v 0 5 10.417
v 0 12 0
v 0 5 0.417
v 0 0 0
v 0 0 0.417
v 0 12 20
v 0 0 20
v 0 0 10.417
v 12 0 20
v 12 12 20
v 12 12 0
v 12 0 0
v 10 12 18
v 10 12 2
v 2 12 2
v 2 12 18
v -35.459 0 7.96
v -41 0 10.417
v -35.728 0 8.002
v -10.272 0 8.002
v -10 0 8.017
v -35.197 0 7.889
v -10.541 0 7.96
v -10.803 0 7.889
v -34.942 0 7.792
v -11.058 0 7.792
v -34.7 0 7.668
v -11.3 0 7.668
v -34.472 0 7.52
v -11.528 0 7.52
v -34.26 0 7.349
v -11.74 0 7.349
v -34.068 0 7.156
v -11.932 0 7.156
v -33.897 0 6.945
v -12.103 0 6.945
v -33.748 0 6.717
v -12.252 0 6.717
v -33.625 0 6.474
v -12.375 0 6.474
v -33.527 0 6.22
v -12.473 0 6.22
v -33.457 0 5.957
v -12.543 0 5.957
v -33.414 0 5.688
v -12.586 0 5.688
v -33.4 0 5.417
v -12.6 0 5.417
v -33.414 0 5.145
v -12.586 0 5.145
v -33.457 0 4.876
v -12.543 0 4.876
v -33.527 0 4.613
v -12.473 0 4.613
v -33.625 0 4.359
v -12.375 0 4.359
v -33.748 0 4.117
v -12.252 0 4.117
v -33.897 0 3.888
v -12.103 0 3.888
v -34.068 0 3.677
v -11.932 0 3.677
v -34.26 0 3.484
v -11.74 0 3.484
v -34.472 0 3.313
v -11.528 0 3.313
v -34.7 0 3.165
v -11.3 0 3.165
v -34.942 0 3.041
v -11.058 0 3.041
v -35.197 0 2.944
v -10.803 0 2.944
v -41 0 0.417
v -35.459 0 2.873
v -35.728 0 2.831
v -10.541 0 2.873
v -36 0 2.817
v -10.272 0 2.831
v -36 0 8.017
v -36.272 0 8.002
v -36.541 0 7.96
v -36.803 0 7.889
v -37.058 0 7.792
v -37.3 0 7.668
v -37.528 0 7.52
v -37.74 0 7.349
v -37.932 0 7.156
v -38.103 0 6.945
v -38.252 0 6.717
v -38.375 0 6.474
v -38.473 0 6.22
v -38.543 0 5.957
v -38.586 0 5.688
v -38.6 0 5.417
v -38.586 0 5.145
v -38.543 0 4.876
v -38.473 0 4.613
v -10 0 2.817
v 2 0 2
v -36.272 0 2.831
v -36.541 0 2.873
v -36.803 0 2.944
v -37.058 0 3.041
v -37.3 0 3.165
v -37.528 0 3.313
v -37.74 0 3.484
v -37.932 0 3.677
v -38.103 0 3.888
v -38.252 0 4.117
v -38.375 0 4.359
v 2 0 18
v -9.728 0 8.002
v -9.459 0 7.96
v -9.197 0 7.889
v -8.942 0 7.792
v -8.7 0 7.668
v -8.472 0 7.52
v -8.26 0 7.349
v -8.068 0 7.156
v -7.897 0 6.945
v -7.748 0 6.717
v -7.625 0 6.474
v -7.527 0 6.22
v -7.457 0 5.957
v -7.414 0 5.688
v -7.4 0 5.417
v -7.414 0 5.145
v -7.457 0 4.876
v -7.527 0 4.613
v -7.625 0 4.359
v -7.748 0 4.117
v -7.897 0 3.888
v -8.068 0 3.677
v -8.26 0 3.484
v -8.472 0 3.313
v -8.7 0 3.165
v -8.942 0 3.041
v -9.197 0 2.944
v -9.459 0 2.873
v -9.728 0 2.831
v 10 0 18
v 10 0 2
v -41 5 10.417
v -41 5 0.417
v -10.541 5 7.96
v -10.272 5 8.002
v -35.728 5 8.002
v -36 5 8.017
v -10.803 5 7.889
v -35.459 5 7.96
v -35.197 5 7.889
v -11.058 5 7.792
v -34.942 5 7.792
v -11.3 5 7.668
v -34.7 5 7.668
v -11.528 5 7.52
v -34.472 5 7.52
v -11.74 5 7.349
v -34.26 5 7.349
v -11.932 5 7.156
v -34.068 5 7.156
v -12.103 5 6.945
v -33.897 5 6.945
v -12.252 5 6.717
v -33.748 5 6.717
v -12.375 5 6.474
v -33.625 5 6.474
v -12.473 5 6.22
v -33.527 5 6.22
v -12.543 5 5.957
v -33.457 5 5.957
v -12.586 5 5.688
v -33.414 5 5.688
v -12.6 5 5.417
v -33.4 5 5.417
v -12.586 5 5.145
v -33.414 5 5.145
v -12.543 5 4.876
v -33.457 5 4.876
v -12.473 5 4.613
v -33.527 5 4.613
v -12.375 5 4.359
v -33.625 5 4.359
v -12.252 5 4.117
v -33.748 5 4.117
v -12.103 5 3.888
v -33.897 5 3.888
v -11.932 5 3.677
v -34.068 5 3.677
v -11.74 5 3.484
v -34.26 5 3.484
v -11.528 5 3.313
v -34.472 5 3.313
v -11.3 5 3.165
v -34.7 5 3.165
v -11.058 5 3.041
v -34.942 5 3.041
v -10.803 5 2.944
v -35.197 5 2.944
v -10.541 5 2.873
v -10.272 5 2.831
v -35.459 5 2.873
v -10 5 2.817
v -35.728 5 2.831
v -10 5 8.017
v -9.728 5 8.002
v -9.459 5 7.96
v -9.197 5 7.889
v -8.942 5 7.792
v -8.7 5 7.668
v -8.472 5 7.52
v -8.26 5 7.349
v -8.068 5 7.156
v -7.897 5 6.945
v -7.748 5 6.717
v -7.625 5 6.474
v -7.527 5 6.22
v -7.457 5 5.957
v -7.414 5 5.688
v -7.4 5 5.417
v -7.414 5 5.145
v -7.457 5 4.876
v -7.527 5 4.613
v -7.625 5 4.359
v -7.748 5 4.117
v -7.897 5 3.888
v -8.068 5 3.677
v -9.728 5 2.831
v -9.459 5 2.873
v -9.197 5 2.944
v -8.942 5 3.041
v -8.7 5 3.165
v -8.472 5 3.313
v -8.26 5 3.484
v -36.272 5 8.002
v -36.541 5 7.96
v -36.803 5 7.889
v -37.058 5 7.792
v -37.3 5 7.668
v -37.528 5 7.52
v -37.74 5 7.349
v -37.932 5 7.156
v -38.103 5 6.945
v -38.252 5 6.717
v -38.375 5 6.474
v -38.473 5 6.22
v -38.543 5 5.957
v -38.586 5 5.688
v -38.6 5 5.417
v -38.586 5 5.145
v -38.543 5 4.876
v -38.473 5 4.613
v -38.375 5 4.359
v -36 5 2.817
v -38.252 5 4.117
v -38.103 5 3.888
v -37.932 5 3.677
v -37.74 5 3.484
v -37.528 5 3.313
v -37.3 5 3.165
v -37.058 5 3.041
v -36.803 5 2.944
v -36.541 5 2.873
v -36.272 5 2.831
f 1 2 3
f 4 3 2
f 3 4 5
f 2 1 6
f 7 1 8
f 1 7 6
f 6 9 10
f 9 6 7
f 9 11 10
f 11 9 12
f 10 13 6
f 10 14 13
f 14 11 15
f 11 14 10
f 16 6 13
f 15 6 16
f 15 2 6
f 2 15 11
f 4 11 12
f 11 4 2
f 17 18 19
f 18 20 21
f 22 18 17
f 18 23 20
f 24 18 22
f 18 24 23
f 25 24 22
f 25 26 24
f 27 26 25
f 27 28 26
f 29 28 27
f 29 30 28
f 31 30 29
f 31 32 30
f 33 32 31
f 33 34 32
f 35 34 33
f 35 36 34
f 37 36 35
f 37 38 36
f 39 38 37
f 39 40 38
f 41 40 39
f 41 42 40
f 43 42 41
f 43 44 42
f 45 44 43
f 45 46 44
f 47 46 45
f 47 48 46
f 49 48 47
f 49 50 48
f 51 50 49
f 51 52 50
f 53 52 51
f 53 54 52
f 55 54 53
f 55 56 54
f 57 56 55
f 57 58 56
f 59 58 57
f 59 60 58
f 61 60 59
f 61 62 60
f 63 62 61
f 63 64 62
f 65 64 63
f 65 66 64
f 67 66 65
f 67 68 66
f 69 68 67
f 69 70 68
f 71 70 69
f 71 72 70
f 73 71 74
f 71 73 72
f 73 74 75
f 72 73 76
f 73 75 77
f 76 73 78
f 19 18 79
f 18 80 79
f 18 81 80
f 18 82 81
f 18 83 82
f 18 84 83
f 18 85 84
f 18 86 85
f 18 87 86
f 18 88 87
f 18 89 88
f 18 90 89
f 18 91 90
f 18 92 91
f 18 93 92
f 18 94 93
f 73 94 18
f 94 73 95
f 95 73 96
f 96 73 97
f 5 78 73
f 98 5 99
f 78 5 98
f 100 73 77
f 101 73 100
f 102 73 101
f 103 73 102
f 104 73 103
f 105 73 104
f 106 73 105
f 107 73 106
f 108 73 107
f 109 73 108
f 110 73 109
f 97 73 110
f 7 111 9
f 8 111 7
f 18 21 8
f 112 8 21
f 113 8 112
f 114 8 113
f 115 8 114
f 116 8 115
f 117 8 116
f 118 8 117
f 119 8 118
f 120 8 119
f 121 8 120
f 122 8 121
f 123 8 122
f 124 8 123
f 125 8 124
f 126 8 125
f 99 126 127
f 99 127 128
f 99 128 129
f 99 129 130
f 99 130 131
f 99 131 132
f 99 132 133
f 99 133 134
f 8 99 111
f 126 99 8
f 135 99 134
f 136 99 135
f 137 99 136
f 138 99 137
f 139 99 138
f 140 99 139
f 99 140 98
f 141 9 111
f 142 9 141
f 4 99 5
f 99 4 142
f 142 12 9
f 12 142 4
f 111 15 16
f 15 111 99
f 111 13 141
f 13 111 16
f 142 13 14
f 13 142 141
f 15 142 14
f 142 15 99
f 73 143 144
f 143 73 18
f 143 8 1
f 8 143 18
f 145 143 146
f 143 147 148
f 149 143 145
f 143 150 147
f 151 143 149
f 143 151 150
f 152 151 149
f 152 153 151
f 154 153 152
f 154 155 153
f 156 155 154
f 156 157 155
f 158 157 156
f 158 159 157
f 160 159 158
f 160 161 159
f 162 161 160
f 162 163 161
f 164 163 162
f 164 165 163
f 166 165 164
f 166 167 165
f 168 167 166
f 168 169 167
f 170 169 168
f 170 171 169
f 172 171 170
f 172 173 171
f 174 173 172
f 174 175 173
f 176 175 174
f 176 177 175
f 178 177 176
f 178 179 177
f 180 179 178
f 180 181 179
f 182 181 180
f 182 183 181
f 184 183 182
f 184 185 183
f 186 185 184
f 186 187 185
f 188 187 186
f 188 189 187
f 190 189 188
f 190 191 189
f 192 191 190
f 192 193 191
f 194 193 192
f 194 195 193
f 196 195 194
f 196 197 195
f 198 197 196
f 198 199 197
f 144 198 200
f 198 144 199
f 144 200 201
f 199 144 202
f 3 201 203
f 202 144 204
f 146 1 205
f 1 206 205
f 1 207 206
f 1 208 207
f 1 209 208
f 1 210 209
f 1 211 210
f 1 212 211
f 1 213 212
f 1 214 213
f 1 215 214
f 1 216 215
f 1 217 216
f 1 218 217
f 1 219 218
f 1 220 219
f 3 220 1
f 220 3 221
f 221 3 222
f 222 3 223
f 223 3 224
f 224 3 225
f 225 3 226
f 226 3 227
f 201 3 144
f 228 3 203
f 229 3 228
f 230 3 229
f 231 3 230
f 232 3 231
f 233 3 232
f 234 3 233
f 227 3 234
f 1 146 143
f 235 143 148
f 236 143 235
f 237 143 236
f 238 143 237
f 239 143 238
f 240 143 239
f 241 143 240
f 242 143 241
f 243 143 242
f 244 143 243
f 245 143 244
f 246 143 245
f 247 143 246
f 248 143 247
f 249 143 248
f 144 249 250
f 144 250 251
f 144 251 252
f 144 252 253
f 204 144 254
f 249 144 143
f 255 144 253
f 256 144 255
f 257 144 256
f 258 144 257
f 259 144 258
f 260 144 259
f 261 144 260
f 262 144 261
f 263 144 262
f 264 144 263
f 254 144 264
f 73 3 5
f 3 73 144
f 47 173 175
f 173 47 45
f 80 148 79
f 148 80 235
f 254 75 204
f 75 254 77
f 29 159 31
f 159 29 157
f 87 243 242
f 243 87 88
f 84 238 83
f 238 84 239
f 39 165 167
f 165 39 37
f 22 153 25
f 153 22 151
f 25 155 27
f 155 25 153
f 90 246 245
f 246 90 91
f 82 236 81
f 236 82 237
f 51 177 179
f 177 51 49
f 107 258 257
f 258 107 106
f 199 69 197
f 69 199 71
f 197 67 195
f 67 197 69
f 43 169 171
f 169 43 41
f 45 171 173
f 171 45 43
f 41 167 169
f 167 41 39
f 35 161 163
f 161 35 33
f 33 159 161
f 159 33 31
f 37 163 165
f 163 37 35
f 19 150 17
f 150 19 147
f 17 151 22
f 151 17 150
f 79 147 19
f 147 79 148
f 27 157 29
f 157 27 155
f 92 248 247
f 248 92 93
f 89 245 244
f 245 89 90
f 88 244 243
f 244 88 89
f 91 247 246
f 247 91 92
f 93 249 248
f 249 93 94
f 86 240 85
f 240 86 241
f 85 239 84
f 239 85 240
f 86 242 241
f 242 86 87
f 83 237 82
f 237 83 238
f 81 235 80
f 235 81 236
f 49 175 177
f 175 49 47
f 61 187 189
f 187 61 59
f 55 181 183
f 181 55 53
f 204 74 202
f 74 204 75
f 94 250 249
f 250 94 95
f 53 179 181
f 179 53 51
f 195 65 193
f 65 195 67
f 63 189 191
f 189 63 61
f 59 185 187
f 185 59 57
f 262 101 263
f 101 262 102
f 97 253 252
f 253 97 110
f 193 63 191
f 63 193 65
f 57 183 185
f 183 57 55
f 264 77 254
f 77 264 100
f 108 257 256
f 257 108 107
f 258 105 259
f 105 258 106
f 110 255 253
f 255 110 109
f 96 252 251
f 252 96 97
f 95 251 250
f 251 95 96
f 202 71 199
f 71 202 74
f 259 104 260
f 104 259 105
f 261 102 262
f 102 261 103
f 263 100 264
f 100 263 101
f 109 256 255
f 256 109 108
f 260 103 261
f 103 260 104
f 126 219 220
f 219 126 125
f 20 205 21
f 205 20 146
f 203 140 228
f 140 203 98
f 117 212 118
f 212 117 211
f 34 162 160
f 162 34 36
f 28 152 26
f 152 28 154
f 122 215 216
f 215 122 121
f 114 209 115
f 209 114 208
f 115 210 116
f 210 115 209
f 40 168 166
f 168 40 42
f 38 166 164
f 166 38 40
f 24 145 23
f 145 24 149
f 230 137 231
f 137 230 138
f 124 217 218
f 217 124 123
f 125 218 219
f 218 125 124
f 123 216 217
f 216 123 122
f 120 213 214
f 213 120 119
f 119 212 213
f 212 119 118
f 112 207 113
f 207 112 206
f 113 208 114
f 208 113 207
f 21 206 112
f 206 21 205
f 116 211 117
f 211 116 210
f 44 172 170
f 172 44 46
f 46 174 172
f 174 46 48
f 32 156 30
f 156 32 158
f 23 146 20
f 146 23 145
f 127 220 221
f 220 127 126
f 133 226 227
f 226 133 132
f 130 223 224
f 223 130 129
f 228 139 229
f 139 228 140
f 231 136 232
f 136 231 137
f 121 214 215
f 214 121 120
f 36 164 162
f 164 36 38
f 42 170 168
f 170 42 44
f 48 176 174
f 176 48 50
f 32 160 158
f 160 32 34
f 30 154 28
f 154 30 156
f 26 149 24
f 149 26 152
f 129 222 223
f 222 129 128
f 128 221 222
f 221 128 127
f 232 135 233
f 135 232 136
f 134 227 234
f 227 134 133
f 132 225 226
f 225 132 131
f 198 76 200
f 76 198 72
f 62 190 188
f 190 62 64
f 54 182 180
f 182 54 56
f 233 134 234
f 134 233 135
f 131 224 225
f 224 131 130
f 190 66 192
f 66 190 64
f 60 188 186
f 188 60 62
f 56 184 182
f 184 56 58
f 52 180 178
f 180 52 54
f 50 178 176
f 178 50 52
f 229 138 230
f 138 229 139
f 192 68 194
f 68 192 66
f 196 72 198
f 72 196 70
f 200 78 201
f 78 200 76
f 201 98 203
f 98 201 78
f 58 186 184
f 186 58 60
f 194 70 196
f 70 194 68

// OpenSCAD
// --------- USER PARAMETERS ---------
standoff_spacing = 26;      // Distance between standoffs (mm)
extension_length = 15;      // How far base extends beyond second standoff (mm)
base_width = 10;            // Width of the base (left-right, X)
base_thickness = 5;         // Thickness of the base (up-down, Z)
hole_diameter = 5.2;        // Diameter of standoff holes (mm)

// XT60 holder parameters
xt60_holder_length = 12;    // Depth (front-back, Y)
xt60_holder_width = 12;     // Width (left-right, X)
xt60_holder_height = 20;    // Height (up, Z)
xt60_holder_thickness = 4;  // Wall thickness

// Tilt the base connection!
xt60_connection_angle = 90;  // NEW: Rotation of base around XT60 side (degrees)

// Internal holder slot parameters
xt60_slot_width = xt60_holder_width - xt60_holder_thickness;  // Width of XT60 plug opening
xt60_slot_height = xt60_holder_height - xt60_holder_thickness; // Height of XT60 plug opening

$fn = 60;                   // Smoothness for circles

// --------- MODULES ---------

// Base plate with standoff holes
module base_plate() {
    difference() {
        
        cube([standoff_spacing + extension_length, base_width, base_thickness], center=false);
        
        // First standoff hole
        translate([5, base_width/2, -1])
            cylinder(h=base_thickness + 2, d=hole_diameter, center=false);
        
        // Second standoff hole
        translate([5 + standoff_spacing, base_width/2, -1])
            cylinder(h=base_thickness + 2, d=hole_diameter, center=false);
    }
}

// XT60 hollow holder with insertion slot
module xt60_holder() {
    difference() {
        // Outer box
        cube([xt60_holder_width, xt60_holder_length, xt60_holder_height], center=false);
        
        // Inner hollow
        translate([xt60_holder_thickness, xt60_holder_thickness, xt60_holder_thickness])
            cube([
                xt60_holder_width - 2 * xt60_holder_thickness,
                xt60_holder_length - 2 * xt60_holder_thickness,
                xt60_holder_height - 2 * xt60_holder_thickness
            ], center=false);

        // Insert slot
        translate([
            (xt60_holder_width - xt60_slot_width)/2,
            -1,  // start before wall
            (xt60_holder_height - xt60_slot_height)/2
        ])
            cube([
                xt60_slot_width,
                xt60_holder_length + 2,
                xt60_slot_height
            ], center=false);
    }
}

// --------- ASSEMBLY ---------
union() {
    // XT60 holder at origin
    xt60_holder();
    
    // Extension arm rotated around holder side
    translate([
        0,  // move slightly if needed (no X offset)
        (xt60_holder_length)/4,     // center Y
        (xt60_holder_height/4) - (base_thickness/4) // center Z
    ])
    rotate([xt60_connection_angle, 0, 0])  // <--- NEW rotation around Y axis
    translate([
        -(standoff_spacing+extension_length),  // move base right after holder width
        -xt60_holder_height/6,
        -xt60_holder_thickness/2
    ])
        base_plate();
}
